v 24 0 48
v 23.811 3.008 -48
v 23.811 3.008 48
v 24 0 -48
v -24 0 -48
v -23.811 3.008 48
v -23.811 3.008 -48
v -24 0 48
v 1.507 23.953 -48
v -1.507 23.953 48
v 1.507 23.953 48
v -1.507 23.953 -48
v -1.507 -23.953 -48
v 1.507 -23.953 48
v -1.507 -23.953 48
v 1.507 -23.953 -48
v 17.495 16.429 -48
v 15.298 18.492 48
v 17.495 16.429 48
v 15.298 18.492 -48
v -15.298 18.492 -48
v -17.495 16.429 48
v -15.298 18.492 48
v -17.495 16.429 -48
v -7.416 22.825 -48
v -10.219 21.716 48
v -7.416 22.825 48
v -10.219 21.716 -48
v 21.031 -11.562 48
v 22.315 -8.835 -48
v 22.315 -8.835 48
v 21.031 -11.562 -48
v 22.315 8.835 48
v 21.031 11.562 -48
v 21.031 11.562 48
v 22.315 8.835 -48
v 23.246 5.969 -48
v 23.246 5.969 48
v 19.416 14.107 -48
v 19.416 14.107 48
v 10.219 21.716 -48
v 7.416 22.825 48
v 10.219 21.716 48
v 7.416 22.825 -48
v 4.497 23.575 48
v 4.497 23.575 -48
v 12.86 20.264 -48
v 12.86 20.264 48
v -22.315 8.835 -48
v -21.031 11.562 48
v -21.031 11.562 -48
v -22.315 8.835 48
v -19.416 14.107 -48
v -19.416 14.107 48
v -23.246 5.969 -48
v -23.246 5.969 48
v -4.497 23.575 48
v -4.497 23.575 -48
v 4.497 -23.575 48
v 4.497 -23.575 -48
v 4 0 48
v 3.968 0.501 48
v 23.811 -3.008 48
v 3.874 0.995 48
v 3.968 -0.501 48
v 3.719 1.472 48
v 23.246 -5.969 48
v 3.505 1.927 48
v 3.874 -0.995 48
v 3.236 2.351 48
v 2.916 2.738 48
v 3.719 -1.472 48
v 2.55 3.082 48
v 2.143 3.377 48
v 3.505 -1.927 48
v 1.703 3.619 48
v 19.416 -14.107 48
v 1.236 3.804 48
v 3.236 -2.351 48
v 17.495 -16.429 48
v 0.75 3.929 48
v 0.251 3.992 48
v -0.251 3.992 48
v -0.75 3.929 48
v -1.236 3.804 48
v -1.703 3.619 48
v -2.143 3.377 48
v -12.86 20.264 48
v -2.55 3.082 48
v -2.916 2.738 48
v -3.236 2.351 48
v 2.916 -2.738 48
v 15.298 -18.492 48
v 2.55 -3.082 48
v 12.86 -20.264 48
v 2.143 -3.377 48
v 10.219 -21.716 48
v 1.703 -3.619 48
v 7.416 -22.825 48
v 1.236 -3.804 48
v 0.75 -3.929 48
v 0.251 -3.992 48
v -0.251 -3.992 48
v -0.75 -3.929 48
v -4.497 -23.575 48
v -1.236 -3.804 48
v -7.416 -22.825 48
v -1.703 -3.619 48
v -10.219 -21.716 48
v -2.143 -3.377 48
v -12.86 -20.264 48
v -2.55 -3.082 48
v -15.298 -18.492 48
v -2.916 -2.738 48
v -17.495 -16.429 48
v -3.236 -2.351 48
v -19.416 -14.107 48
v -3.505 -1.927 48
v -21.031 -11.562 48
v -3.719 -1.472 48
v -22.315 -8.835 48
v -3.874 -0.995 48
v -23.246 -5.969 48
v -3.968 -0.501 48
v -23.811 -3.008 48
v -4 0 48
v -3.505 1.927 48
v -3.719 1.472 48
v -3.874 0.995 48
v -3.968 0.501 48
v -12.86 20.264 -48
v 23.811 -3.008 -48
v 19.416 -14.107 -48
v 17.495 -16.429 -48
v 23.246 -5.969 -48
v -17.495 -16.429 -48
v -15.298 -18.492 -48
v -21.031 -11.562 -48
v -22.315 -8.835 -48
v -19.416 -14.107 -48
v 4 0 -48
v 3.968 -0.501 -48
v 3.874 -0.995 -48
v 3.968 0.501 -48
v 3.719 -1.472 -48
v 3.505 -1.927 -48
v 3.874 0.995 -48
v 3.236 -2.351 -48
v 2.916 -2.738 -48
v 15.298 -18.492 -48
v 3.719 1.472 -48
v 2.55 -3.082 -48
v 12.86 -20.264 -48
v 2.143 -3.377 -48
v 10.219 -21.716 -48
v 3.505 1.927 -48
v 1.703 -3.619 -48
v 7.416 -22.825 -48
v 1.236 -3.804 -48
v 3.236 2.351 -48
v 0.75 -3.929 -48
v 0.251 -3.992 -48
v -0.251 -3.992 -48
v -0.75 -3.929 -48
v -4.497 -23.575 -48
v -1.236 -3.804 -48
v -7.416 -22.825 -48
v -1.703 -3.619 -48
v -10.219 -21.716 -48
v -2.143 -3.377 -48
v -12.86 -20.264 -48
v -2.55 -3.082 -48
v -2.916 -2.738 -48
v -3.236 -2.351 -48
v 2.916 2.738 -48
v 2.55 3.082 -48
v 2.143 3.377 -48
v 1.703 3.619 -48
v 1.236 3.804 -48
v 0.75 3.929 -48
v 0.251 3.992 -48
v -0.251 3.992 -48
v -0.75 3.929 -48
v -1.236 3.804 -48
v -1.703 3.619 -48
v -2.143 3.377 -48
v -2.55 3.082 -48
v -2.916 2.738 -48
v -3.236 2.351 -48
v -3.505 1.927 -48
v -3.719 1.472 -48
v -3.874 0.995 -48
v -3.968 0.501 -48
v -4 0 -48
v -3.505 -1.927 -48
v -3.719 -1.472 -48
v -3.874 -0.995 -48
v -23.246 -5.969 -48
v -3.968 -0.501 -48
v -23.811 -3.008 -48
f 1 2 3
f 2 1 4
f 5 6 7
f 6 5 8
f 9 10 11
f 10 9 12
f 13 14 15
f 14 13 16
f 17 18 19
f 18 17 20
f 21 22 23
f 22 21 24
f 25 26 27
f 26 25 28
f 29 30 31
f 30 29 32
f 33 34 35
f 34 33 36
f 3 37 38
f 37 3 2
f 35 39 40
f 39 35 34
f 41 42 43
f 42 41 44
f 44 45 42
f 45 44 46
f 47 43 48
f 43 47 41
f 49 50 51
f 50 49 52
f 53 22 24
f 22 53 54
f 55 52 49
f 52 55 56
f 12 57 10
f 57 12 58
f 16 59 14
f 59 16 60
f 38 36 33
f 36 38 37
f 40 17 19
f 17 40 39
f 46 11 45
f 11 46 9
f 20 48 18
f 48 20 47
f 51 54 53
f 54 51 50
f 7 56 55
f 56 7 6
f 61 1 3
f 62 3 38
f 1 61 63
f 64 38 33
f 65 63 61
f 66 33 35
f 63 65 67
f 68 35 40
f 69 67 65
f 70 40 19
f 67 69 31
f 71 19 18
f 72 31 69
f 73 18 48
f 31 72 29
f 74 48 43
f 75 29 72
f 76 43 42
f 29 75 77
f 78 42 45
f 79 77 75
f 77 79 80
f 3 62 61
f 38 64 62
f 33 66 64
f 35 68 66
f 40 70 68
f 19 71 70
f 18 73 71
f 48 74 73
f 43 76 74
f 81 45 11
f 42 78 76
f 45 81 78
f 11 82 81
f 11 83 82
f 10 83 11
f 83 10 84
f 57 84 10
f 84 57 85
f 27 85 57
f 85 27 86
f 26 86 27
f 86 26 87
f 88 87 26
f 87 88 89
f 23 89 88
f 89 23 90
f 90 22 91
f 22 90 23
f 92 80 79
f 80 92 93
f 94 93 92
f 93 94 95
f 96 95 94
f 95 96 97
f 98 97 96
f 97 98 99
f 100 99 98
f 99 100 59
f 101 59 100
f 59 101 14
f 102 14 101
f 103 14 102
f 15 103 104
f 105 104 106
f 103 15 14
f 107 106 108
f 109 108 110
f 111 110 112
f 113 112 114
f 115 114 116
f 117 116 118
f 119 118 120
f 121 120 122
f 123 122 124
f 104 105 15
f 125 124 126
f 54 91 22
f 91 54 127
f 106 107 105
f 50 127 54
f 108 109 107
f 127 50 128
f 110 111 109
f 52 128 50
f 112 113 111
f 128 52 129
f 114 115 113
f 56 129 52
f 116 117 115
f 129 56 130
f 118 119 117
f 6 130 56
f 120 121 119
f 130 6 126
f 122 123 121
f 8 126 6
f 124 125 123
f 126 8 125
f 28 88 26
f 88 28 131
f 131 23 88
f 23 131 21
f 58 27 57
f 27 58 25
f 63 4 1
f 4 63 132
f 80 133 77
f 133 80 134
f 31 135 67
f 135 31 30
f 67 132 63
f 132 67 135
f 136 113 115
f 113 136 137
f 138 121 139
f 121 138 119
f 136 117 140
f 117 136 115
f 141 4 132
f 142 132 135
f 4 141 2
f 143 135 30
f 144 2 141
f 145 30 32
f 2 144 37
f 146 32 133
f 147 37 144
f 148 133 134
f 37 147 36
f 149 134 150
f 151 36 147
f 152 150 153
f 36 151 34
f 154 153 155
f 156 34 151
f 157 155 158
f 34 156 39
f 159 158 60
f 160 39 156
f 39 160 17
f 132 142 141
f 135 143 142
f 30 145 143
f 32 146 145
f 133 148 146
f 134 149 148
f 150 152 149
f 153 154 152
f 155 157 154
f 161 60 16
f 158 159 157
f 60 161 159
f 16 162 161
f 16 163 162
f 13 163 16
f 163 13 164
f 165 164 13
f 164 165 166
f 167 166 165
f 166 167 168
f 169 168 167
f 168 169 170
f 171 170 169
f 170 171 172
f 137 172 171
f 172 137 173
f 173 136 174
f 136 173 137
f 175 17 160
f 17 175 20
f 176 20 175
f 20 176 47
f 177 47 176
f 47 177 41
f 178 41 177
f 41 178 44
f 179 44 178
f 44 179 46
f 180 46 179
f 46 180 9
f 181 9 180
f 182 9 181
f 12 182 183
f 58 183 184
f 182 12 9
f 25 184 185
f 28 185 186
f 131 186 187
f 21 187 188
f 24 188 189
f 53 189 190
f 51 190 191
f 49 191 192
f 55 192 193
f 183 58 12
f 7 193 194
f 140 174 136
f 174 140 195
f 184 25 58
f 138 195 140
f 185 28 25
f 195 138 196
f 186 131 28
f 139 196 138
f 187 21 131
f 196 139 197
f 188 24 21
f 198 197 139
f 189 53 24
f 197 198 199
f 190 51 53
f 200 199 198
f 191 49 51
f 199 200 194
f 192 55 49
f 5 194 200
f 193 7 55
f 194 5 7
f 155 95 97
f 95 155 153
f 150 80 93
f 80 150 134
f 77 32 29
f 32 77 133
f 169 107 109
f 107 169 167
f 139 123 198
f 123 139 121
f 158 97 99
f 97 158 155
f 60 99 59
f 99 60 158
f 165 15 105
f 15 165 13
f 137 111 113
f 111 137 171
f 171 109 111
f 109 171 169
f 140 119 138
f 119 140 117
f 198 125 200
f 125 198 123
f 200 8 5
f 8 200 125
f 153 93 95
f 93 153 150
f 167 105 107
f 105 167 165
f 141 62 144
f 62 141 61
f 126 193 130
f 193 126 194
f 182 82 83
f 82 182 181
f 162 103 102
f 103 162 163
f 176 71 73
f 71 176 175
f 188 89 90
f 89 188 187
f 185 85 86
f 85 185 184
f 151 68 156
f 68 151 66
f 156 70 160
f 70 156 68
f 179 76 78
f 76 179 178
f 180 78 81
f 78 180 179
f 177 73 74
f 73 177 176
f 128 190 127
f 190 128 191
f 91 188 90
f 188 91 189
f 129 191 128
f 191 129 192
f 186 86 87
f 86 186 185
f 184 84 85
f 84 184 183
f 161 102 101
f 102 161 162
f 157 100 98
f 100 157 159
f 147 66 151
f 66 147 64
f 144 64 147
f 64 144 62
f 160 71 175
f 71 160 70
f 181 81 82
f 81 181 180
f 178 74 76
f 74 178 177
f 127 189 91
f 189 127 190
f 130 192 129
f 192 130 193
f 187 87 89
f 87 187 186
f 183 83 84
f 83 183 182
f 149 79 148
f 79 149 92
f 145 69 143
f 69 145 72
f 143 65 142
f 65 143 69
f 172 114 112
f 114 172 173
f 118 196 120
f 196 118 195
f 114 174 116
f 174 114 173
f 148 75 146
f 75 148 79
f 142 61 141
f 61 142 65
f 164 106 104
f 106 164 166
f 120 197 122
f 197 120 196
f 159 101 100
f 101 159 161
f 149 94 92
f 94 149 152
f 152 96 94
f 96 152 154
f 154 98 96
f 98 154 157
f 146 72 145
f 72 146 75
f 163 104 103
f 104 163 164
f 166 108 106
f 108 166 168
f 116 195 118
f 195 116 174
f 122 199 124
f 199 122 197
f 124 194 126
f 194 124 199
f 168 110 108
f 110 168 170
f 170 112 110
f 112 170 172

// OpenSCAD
$fn = 50;


difference() {
	union() {
		translate(v = [0, 0, -48.0000000000]) {
			cylinder(h = 96, r = 24.0000000000);
		}
	}
	union() {
		translate(v = [0, 0, -100.0000000000]) {
			cylinder(h = 200, r = 4.0000000000);
		}
	}
}
